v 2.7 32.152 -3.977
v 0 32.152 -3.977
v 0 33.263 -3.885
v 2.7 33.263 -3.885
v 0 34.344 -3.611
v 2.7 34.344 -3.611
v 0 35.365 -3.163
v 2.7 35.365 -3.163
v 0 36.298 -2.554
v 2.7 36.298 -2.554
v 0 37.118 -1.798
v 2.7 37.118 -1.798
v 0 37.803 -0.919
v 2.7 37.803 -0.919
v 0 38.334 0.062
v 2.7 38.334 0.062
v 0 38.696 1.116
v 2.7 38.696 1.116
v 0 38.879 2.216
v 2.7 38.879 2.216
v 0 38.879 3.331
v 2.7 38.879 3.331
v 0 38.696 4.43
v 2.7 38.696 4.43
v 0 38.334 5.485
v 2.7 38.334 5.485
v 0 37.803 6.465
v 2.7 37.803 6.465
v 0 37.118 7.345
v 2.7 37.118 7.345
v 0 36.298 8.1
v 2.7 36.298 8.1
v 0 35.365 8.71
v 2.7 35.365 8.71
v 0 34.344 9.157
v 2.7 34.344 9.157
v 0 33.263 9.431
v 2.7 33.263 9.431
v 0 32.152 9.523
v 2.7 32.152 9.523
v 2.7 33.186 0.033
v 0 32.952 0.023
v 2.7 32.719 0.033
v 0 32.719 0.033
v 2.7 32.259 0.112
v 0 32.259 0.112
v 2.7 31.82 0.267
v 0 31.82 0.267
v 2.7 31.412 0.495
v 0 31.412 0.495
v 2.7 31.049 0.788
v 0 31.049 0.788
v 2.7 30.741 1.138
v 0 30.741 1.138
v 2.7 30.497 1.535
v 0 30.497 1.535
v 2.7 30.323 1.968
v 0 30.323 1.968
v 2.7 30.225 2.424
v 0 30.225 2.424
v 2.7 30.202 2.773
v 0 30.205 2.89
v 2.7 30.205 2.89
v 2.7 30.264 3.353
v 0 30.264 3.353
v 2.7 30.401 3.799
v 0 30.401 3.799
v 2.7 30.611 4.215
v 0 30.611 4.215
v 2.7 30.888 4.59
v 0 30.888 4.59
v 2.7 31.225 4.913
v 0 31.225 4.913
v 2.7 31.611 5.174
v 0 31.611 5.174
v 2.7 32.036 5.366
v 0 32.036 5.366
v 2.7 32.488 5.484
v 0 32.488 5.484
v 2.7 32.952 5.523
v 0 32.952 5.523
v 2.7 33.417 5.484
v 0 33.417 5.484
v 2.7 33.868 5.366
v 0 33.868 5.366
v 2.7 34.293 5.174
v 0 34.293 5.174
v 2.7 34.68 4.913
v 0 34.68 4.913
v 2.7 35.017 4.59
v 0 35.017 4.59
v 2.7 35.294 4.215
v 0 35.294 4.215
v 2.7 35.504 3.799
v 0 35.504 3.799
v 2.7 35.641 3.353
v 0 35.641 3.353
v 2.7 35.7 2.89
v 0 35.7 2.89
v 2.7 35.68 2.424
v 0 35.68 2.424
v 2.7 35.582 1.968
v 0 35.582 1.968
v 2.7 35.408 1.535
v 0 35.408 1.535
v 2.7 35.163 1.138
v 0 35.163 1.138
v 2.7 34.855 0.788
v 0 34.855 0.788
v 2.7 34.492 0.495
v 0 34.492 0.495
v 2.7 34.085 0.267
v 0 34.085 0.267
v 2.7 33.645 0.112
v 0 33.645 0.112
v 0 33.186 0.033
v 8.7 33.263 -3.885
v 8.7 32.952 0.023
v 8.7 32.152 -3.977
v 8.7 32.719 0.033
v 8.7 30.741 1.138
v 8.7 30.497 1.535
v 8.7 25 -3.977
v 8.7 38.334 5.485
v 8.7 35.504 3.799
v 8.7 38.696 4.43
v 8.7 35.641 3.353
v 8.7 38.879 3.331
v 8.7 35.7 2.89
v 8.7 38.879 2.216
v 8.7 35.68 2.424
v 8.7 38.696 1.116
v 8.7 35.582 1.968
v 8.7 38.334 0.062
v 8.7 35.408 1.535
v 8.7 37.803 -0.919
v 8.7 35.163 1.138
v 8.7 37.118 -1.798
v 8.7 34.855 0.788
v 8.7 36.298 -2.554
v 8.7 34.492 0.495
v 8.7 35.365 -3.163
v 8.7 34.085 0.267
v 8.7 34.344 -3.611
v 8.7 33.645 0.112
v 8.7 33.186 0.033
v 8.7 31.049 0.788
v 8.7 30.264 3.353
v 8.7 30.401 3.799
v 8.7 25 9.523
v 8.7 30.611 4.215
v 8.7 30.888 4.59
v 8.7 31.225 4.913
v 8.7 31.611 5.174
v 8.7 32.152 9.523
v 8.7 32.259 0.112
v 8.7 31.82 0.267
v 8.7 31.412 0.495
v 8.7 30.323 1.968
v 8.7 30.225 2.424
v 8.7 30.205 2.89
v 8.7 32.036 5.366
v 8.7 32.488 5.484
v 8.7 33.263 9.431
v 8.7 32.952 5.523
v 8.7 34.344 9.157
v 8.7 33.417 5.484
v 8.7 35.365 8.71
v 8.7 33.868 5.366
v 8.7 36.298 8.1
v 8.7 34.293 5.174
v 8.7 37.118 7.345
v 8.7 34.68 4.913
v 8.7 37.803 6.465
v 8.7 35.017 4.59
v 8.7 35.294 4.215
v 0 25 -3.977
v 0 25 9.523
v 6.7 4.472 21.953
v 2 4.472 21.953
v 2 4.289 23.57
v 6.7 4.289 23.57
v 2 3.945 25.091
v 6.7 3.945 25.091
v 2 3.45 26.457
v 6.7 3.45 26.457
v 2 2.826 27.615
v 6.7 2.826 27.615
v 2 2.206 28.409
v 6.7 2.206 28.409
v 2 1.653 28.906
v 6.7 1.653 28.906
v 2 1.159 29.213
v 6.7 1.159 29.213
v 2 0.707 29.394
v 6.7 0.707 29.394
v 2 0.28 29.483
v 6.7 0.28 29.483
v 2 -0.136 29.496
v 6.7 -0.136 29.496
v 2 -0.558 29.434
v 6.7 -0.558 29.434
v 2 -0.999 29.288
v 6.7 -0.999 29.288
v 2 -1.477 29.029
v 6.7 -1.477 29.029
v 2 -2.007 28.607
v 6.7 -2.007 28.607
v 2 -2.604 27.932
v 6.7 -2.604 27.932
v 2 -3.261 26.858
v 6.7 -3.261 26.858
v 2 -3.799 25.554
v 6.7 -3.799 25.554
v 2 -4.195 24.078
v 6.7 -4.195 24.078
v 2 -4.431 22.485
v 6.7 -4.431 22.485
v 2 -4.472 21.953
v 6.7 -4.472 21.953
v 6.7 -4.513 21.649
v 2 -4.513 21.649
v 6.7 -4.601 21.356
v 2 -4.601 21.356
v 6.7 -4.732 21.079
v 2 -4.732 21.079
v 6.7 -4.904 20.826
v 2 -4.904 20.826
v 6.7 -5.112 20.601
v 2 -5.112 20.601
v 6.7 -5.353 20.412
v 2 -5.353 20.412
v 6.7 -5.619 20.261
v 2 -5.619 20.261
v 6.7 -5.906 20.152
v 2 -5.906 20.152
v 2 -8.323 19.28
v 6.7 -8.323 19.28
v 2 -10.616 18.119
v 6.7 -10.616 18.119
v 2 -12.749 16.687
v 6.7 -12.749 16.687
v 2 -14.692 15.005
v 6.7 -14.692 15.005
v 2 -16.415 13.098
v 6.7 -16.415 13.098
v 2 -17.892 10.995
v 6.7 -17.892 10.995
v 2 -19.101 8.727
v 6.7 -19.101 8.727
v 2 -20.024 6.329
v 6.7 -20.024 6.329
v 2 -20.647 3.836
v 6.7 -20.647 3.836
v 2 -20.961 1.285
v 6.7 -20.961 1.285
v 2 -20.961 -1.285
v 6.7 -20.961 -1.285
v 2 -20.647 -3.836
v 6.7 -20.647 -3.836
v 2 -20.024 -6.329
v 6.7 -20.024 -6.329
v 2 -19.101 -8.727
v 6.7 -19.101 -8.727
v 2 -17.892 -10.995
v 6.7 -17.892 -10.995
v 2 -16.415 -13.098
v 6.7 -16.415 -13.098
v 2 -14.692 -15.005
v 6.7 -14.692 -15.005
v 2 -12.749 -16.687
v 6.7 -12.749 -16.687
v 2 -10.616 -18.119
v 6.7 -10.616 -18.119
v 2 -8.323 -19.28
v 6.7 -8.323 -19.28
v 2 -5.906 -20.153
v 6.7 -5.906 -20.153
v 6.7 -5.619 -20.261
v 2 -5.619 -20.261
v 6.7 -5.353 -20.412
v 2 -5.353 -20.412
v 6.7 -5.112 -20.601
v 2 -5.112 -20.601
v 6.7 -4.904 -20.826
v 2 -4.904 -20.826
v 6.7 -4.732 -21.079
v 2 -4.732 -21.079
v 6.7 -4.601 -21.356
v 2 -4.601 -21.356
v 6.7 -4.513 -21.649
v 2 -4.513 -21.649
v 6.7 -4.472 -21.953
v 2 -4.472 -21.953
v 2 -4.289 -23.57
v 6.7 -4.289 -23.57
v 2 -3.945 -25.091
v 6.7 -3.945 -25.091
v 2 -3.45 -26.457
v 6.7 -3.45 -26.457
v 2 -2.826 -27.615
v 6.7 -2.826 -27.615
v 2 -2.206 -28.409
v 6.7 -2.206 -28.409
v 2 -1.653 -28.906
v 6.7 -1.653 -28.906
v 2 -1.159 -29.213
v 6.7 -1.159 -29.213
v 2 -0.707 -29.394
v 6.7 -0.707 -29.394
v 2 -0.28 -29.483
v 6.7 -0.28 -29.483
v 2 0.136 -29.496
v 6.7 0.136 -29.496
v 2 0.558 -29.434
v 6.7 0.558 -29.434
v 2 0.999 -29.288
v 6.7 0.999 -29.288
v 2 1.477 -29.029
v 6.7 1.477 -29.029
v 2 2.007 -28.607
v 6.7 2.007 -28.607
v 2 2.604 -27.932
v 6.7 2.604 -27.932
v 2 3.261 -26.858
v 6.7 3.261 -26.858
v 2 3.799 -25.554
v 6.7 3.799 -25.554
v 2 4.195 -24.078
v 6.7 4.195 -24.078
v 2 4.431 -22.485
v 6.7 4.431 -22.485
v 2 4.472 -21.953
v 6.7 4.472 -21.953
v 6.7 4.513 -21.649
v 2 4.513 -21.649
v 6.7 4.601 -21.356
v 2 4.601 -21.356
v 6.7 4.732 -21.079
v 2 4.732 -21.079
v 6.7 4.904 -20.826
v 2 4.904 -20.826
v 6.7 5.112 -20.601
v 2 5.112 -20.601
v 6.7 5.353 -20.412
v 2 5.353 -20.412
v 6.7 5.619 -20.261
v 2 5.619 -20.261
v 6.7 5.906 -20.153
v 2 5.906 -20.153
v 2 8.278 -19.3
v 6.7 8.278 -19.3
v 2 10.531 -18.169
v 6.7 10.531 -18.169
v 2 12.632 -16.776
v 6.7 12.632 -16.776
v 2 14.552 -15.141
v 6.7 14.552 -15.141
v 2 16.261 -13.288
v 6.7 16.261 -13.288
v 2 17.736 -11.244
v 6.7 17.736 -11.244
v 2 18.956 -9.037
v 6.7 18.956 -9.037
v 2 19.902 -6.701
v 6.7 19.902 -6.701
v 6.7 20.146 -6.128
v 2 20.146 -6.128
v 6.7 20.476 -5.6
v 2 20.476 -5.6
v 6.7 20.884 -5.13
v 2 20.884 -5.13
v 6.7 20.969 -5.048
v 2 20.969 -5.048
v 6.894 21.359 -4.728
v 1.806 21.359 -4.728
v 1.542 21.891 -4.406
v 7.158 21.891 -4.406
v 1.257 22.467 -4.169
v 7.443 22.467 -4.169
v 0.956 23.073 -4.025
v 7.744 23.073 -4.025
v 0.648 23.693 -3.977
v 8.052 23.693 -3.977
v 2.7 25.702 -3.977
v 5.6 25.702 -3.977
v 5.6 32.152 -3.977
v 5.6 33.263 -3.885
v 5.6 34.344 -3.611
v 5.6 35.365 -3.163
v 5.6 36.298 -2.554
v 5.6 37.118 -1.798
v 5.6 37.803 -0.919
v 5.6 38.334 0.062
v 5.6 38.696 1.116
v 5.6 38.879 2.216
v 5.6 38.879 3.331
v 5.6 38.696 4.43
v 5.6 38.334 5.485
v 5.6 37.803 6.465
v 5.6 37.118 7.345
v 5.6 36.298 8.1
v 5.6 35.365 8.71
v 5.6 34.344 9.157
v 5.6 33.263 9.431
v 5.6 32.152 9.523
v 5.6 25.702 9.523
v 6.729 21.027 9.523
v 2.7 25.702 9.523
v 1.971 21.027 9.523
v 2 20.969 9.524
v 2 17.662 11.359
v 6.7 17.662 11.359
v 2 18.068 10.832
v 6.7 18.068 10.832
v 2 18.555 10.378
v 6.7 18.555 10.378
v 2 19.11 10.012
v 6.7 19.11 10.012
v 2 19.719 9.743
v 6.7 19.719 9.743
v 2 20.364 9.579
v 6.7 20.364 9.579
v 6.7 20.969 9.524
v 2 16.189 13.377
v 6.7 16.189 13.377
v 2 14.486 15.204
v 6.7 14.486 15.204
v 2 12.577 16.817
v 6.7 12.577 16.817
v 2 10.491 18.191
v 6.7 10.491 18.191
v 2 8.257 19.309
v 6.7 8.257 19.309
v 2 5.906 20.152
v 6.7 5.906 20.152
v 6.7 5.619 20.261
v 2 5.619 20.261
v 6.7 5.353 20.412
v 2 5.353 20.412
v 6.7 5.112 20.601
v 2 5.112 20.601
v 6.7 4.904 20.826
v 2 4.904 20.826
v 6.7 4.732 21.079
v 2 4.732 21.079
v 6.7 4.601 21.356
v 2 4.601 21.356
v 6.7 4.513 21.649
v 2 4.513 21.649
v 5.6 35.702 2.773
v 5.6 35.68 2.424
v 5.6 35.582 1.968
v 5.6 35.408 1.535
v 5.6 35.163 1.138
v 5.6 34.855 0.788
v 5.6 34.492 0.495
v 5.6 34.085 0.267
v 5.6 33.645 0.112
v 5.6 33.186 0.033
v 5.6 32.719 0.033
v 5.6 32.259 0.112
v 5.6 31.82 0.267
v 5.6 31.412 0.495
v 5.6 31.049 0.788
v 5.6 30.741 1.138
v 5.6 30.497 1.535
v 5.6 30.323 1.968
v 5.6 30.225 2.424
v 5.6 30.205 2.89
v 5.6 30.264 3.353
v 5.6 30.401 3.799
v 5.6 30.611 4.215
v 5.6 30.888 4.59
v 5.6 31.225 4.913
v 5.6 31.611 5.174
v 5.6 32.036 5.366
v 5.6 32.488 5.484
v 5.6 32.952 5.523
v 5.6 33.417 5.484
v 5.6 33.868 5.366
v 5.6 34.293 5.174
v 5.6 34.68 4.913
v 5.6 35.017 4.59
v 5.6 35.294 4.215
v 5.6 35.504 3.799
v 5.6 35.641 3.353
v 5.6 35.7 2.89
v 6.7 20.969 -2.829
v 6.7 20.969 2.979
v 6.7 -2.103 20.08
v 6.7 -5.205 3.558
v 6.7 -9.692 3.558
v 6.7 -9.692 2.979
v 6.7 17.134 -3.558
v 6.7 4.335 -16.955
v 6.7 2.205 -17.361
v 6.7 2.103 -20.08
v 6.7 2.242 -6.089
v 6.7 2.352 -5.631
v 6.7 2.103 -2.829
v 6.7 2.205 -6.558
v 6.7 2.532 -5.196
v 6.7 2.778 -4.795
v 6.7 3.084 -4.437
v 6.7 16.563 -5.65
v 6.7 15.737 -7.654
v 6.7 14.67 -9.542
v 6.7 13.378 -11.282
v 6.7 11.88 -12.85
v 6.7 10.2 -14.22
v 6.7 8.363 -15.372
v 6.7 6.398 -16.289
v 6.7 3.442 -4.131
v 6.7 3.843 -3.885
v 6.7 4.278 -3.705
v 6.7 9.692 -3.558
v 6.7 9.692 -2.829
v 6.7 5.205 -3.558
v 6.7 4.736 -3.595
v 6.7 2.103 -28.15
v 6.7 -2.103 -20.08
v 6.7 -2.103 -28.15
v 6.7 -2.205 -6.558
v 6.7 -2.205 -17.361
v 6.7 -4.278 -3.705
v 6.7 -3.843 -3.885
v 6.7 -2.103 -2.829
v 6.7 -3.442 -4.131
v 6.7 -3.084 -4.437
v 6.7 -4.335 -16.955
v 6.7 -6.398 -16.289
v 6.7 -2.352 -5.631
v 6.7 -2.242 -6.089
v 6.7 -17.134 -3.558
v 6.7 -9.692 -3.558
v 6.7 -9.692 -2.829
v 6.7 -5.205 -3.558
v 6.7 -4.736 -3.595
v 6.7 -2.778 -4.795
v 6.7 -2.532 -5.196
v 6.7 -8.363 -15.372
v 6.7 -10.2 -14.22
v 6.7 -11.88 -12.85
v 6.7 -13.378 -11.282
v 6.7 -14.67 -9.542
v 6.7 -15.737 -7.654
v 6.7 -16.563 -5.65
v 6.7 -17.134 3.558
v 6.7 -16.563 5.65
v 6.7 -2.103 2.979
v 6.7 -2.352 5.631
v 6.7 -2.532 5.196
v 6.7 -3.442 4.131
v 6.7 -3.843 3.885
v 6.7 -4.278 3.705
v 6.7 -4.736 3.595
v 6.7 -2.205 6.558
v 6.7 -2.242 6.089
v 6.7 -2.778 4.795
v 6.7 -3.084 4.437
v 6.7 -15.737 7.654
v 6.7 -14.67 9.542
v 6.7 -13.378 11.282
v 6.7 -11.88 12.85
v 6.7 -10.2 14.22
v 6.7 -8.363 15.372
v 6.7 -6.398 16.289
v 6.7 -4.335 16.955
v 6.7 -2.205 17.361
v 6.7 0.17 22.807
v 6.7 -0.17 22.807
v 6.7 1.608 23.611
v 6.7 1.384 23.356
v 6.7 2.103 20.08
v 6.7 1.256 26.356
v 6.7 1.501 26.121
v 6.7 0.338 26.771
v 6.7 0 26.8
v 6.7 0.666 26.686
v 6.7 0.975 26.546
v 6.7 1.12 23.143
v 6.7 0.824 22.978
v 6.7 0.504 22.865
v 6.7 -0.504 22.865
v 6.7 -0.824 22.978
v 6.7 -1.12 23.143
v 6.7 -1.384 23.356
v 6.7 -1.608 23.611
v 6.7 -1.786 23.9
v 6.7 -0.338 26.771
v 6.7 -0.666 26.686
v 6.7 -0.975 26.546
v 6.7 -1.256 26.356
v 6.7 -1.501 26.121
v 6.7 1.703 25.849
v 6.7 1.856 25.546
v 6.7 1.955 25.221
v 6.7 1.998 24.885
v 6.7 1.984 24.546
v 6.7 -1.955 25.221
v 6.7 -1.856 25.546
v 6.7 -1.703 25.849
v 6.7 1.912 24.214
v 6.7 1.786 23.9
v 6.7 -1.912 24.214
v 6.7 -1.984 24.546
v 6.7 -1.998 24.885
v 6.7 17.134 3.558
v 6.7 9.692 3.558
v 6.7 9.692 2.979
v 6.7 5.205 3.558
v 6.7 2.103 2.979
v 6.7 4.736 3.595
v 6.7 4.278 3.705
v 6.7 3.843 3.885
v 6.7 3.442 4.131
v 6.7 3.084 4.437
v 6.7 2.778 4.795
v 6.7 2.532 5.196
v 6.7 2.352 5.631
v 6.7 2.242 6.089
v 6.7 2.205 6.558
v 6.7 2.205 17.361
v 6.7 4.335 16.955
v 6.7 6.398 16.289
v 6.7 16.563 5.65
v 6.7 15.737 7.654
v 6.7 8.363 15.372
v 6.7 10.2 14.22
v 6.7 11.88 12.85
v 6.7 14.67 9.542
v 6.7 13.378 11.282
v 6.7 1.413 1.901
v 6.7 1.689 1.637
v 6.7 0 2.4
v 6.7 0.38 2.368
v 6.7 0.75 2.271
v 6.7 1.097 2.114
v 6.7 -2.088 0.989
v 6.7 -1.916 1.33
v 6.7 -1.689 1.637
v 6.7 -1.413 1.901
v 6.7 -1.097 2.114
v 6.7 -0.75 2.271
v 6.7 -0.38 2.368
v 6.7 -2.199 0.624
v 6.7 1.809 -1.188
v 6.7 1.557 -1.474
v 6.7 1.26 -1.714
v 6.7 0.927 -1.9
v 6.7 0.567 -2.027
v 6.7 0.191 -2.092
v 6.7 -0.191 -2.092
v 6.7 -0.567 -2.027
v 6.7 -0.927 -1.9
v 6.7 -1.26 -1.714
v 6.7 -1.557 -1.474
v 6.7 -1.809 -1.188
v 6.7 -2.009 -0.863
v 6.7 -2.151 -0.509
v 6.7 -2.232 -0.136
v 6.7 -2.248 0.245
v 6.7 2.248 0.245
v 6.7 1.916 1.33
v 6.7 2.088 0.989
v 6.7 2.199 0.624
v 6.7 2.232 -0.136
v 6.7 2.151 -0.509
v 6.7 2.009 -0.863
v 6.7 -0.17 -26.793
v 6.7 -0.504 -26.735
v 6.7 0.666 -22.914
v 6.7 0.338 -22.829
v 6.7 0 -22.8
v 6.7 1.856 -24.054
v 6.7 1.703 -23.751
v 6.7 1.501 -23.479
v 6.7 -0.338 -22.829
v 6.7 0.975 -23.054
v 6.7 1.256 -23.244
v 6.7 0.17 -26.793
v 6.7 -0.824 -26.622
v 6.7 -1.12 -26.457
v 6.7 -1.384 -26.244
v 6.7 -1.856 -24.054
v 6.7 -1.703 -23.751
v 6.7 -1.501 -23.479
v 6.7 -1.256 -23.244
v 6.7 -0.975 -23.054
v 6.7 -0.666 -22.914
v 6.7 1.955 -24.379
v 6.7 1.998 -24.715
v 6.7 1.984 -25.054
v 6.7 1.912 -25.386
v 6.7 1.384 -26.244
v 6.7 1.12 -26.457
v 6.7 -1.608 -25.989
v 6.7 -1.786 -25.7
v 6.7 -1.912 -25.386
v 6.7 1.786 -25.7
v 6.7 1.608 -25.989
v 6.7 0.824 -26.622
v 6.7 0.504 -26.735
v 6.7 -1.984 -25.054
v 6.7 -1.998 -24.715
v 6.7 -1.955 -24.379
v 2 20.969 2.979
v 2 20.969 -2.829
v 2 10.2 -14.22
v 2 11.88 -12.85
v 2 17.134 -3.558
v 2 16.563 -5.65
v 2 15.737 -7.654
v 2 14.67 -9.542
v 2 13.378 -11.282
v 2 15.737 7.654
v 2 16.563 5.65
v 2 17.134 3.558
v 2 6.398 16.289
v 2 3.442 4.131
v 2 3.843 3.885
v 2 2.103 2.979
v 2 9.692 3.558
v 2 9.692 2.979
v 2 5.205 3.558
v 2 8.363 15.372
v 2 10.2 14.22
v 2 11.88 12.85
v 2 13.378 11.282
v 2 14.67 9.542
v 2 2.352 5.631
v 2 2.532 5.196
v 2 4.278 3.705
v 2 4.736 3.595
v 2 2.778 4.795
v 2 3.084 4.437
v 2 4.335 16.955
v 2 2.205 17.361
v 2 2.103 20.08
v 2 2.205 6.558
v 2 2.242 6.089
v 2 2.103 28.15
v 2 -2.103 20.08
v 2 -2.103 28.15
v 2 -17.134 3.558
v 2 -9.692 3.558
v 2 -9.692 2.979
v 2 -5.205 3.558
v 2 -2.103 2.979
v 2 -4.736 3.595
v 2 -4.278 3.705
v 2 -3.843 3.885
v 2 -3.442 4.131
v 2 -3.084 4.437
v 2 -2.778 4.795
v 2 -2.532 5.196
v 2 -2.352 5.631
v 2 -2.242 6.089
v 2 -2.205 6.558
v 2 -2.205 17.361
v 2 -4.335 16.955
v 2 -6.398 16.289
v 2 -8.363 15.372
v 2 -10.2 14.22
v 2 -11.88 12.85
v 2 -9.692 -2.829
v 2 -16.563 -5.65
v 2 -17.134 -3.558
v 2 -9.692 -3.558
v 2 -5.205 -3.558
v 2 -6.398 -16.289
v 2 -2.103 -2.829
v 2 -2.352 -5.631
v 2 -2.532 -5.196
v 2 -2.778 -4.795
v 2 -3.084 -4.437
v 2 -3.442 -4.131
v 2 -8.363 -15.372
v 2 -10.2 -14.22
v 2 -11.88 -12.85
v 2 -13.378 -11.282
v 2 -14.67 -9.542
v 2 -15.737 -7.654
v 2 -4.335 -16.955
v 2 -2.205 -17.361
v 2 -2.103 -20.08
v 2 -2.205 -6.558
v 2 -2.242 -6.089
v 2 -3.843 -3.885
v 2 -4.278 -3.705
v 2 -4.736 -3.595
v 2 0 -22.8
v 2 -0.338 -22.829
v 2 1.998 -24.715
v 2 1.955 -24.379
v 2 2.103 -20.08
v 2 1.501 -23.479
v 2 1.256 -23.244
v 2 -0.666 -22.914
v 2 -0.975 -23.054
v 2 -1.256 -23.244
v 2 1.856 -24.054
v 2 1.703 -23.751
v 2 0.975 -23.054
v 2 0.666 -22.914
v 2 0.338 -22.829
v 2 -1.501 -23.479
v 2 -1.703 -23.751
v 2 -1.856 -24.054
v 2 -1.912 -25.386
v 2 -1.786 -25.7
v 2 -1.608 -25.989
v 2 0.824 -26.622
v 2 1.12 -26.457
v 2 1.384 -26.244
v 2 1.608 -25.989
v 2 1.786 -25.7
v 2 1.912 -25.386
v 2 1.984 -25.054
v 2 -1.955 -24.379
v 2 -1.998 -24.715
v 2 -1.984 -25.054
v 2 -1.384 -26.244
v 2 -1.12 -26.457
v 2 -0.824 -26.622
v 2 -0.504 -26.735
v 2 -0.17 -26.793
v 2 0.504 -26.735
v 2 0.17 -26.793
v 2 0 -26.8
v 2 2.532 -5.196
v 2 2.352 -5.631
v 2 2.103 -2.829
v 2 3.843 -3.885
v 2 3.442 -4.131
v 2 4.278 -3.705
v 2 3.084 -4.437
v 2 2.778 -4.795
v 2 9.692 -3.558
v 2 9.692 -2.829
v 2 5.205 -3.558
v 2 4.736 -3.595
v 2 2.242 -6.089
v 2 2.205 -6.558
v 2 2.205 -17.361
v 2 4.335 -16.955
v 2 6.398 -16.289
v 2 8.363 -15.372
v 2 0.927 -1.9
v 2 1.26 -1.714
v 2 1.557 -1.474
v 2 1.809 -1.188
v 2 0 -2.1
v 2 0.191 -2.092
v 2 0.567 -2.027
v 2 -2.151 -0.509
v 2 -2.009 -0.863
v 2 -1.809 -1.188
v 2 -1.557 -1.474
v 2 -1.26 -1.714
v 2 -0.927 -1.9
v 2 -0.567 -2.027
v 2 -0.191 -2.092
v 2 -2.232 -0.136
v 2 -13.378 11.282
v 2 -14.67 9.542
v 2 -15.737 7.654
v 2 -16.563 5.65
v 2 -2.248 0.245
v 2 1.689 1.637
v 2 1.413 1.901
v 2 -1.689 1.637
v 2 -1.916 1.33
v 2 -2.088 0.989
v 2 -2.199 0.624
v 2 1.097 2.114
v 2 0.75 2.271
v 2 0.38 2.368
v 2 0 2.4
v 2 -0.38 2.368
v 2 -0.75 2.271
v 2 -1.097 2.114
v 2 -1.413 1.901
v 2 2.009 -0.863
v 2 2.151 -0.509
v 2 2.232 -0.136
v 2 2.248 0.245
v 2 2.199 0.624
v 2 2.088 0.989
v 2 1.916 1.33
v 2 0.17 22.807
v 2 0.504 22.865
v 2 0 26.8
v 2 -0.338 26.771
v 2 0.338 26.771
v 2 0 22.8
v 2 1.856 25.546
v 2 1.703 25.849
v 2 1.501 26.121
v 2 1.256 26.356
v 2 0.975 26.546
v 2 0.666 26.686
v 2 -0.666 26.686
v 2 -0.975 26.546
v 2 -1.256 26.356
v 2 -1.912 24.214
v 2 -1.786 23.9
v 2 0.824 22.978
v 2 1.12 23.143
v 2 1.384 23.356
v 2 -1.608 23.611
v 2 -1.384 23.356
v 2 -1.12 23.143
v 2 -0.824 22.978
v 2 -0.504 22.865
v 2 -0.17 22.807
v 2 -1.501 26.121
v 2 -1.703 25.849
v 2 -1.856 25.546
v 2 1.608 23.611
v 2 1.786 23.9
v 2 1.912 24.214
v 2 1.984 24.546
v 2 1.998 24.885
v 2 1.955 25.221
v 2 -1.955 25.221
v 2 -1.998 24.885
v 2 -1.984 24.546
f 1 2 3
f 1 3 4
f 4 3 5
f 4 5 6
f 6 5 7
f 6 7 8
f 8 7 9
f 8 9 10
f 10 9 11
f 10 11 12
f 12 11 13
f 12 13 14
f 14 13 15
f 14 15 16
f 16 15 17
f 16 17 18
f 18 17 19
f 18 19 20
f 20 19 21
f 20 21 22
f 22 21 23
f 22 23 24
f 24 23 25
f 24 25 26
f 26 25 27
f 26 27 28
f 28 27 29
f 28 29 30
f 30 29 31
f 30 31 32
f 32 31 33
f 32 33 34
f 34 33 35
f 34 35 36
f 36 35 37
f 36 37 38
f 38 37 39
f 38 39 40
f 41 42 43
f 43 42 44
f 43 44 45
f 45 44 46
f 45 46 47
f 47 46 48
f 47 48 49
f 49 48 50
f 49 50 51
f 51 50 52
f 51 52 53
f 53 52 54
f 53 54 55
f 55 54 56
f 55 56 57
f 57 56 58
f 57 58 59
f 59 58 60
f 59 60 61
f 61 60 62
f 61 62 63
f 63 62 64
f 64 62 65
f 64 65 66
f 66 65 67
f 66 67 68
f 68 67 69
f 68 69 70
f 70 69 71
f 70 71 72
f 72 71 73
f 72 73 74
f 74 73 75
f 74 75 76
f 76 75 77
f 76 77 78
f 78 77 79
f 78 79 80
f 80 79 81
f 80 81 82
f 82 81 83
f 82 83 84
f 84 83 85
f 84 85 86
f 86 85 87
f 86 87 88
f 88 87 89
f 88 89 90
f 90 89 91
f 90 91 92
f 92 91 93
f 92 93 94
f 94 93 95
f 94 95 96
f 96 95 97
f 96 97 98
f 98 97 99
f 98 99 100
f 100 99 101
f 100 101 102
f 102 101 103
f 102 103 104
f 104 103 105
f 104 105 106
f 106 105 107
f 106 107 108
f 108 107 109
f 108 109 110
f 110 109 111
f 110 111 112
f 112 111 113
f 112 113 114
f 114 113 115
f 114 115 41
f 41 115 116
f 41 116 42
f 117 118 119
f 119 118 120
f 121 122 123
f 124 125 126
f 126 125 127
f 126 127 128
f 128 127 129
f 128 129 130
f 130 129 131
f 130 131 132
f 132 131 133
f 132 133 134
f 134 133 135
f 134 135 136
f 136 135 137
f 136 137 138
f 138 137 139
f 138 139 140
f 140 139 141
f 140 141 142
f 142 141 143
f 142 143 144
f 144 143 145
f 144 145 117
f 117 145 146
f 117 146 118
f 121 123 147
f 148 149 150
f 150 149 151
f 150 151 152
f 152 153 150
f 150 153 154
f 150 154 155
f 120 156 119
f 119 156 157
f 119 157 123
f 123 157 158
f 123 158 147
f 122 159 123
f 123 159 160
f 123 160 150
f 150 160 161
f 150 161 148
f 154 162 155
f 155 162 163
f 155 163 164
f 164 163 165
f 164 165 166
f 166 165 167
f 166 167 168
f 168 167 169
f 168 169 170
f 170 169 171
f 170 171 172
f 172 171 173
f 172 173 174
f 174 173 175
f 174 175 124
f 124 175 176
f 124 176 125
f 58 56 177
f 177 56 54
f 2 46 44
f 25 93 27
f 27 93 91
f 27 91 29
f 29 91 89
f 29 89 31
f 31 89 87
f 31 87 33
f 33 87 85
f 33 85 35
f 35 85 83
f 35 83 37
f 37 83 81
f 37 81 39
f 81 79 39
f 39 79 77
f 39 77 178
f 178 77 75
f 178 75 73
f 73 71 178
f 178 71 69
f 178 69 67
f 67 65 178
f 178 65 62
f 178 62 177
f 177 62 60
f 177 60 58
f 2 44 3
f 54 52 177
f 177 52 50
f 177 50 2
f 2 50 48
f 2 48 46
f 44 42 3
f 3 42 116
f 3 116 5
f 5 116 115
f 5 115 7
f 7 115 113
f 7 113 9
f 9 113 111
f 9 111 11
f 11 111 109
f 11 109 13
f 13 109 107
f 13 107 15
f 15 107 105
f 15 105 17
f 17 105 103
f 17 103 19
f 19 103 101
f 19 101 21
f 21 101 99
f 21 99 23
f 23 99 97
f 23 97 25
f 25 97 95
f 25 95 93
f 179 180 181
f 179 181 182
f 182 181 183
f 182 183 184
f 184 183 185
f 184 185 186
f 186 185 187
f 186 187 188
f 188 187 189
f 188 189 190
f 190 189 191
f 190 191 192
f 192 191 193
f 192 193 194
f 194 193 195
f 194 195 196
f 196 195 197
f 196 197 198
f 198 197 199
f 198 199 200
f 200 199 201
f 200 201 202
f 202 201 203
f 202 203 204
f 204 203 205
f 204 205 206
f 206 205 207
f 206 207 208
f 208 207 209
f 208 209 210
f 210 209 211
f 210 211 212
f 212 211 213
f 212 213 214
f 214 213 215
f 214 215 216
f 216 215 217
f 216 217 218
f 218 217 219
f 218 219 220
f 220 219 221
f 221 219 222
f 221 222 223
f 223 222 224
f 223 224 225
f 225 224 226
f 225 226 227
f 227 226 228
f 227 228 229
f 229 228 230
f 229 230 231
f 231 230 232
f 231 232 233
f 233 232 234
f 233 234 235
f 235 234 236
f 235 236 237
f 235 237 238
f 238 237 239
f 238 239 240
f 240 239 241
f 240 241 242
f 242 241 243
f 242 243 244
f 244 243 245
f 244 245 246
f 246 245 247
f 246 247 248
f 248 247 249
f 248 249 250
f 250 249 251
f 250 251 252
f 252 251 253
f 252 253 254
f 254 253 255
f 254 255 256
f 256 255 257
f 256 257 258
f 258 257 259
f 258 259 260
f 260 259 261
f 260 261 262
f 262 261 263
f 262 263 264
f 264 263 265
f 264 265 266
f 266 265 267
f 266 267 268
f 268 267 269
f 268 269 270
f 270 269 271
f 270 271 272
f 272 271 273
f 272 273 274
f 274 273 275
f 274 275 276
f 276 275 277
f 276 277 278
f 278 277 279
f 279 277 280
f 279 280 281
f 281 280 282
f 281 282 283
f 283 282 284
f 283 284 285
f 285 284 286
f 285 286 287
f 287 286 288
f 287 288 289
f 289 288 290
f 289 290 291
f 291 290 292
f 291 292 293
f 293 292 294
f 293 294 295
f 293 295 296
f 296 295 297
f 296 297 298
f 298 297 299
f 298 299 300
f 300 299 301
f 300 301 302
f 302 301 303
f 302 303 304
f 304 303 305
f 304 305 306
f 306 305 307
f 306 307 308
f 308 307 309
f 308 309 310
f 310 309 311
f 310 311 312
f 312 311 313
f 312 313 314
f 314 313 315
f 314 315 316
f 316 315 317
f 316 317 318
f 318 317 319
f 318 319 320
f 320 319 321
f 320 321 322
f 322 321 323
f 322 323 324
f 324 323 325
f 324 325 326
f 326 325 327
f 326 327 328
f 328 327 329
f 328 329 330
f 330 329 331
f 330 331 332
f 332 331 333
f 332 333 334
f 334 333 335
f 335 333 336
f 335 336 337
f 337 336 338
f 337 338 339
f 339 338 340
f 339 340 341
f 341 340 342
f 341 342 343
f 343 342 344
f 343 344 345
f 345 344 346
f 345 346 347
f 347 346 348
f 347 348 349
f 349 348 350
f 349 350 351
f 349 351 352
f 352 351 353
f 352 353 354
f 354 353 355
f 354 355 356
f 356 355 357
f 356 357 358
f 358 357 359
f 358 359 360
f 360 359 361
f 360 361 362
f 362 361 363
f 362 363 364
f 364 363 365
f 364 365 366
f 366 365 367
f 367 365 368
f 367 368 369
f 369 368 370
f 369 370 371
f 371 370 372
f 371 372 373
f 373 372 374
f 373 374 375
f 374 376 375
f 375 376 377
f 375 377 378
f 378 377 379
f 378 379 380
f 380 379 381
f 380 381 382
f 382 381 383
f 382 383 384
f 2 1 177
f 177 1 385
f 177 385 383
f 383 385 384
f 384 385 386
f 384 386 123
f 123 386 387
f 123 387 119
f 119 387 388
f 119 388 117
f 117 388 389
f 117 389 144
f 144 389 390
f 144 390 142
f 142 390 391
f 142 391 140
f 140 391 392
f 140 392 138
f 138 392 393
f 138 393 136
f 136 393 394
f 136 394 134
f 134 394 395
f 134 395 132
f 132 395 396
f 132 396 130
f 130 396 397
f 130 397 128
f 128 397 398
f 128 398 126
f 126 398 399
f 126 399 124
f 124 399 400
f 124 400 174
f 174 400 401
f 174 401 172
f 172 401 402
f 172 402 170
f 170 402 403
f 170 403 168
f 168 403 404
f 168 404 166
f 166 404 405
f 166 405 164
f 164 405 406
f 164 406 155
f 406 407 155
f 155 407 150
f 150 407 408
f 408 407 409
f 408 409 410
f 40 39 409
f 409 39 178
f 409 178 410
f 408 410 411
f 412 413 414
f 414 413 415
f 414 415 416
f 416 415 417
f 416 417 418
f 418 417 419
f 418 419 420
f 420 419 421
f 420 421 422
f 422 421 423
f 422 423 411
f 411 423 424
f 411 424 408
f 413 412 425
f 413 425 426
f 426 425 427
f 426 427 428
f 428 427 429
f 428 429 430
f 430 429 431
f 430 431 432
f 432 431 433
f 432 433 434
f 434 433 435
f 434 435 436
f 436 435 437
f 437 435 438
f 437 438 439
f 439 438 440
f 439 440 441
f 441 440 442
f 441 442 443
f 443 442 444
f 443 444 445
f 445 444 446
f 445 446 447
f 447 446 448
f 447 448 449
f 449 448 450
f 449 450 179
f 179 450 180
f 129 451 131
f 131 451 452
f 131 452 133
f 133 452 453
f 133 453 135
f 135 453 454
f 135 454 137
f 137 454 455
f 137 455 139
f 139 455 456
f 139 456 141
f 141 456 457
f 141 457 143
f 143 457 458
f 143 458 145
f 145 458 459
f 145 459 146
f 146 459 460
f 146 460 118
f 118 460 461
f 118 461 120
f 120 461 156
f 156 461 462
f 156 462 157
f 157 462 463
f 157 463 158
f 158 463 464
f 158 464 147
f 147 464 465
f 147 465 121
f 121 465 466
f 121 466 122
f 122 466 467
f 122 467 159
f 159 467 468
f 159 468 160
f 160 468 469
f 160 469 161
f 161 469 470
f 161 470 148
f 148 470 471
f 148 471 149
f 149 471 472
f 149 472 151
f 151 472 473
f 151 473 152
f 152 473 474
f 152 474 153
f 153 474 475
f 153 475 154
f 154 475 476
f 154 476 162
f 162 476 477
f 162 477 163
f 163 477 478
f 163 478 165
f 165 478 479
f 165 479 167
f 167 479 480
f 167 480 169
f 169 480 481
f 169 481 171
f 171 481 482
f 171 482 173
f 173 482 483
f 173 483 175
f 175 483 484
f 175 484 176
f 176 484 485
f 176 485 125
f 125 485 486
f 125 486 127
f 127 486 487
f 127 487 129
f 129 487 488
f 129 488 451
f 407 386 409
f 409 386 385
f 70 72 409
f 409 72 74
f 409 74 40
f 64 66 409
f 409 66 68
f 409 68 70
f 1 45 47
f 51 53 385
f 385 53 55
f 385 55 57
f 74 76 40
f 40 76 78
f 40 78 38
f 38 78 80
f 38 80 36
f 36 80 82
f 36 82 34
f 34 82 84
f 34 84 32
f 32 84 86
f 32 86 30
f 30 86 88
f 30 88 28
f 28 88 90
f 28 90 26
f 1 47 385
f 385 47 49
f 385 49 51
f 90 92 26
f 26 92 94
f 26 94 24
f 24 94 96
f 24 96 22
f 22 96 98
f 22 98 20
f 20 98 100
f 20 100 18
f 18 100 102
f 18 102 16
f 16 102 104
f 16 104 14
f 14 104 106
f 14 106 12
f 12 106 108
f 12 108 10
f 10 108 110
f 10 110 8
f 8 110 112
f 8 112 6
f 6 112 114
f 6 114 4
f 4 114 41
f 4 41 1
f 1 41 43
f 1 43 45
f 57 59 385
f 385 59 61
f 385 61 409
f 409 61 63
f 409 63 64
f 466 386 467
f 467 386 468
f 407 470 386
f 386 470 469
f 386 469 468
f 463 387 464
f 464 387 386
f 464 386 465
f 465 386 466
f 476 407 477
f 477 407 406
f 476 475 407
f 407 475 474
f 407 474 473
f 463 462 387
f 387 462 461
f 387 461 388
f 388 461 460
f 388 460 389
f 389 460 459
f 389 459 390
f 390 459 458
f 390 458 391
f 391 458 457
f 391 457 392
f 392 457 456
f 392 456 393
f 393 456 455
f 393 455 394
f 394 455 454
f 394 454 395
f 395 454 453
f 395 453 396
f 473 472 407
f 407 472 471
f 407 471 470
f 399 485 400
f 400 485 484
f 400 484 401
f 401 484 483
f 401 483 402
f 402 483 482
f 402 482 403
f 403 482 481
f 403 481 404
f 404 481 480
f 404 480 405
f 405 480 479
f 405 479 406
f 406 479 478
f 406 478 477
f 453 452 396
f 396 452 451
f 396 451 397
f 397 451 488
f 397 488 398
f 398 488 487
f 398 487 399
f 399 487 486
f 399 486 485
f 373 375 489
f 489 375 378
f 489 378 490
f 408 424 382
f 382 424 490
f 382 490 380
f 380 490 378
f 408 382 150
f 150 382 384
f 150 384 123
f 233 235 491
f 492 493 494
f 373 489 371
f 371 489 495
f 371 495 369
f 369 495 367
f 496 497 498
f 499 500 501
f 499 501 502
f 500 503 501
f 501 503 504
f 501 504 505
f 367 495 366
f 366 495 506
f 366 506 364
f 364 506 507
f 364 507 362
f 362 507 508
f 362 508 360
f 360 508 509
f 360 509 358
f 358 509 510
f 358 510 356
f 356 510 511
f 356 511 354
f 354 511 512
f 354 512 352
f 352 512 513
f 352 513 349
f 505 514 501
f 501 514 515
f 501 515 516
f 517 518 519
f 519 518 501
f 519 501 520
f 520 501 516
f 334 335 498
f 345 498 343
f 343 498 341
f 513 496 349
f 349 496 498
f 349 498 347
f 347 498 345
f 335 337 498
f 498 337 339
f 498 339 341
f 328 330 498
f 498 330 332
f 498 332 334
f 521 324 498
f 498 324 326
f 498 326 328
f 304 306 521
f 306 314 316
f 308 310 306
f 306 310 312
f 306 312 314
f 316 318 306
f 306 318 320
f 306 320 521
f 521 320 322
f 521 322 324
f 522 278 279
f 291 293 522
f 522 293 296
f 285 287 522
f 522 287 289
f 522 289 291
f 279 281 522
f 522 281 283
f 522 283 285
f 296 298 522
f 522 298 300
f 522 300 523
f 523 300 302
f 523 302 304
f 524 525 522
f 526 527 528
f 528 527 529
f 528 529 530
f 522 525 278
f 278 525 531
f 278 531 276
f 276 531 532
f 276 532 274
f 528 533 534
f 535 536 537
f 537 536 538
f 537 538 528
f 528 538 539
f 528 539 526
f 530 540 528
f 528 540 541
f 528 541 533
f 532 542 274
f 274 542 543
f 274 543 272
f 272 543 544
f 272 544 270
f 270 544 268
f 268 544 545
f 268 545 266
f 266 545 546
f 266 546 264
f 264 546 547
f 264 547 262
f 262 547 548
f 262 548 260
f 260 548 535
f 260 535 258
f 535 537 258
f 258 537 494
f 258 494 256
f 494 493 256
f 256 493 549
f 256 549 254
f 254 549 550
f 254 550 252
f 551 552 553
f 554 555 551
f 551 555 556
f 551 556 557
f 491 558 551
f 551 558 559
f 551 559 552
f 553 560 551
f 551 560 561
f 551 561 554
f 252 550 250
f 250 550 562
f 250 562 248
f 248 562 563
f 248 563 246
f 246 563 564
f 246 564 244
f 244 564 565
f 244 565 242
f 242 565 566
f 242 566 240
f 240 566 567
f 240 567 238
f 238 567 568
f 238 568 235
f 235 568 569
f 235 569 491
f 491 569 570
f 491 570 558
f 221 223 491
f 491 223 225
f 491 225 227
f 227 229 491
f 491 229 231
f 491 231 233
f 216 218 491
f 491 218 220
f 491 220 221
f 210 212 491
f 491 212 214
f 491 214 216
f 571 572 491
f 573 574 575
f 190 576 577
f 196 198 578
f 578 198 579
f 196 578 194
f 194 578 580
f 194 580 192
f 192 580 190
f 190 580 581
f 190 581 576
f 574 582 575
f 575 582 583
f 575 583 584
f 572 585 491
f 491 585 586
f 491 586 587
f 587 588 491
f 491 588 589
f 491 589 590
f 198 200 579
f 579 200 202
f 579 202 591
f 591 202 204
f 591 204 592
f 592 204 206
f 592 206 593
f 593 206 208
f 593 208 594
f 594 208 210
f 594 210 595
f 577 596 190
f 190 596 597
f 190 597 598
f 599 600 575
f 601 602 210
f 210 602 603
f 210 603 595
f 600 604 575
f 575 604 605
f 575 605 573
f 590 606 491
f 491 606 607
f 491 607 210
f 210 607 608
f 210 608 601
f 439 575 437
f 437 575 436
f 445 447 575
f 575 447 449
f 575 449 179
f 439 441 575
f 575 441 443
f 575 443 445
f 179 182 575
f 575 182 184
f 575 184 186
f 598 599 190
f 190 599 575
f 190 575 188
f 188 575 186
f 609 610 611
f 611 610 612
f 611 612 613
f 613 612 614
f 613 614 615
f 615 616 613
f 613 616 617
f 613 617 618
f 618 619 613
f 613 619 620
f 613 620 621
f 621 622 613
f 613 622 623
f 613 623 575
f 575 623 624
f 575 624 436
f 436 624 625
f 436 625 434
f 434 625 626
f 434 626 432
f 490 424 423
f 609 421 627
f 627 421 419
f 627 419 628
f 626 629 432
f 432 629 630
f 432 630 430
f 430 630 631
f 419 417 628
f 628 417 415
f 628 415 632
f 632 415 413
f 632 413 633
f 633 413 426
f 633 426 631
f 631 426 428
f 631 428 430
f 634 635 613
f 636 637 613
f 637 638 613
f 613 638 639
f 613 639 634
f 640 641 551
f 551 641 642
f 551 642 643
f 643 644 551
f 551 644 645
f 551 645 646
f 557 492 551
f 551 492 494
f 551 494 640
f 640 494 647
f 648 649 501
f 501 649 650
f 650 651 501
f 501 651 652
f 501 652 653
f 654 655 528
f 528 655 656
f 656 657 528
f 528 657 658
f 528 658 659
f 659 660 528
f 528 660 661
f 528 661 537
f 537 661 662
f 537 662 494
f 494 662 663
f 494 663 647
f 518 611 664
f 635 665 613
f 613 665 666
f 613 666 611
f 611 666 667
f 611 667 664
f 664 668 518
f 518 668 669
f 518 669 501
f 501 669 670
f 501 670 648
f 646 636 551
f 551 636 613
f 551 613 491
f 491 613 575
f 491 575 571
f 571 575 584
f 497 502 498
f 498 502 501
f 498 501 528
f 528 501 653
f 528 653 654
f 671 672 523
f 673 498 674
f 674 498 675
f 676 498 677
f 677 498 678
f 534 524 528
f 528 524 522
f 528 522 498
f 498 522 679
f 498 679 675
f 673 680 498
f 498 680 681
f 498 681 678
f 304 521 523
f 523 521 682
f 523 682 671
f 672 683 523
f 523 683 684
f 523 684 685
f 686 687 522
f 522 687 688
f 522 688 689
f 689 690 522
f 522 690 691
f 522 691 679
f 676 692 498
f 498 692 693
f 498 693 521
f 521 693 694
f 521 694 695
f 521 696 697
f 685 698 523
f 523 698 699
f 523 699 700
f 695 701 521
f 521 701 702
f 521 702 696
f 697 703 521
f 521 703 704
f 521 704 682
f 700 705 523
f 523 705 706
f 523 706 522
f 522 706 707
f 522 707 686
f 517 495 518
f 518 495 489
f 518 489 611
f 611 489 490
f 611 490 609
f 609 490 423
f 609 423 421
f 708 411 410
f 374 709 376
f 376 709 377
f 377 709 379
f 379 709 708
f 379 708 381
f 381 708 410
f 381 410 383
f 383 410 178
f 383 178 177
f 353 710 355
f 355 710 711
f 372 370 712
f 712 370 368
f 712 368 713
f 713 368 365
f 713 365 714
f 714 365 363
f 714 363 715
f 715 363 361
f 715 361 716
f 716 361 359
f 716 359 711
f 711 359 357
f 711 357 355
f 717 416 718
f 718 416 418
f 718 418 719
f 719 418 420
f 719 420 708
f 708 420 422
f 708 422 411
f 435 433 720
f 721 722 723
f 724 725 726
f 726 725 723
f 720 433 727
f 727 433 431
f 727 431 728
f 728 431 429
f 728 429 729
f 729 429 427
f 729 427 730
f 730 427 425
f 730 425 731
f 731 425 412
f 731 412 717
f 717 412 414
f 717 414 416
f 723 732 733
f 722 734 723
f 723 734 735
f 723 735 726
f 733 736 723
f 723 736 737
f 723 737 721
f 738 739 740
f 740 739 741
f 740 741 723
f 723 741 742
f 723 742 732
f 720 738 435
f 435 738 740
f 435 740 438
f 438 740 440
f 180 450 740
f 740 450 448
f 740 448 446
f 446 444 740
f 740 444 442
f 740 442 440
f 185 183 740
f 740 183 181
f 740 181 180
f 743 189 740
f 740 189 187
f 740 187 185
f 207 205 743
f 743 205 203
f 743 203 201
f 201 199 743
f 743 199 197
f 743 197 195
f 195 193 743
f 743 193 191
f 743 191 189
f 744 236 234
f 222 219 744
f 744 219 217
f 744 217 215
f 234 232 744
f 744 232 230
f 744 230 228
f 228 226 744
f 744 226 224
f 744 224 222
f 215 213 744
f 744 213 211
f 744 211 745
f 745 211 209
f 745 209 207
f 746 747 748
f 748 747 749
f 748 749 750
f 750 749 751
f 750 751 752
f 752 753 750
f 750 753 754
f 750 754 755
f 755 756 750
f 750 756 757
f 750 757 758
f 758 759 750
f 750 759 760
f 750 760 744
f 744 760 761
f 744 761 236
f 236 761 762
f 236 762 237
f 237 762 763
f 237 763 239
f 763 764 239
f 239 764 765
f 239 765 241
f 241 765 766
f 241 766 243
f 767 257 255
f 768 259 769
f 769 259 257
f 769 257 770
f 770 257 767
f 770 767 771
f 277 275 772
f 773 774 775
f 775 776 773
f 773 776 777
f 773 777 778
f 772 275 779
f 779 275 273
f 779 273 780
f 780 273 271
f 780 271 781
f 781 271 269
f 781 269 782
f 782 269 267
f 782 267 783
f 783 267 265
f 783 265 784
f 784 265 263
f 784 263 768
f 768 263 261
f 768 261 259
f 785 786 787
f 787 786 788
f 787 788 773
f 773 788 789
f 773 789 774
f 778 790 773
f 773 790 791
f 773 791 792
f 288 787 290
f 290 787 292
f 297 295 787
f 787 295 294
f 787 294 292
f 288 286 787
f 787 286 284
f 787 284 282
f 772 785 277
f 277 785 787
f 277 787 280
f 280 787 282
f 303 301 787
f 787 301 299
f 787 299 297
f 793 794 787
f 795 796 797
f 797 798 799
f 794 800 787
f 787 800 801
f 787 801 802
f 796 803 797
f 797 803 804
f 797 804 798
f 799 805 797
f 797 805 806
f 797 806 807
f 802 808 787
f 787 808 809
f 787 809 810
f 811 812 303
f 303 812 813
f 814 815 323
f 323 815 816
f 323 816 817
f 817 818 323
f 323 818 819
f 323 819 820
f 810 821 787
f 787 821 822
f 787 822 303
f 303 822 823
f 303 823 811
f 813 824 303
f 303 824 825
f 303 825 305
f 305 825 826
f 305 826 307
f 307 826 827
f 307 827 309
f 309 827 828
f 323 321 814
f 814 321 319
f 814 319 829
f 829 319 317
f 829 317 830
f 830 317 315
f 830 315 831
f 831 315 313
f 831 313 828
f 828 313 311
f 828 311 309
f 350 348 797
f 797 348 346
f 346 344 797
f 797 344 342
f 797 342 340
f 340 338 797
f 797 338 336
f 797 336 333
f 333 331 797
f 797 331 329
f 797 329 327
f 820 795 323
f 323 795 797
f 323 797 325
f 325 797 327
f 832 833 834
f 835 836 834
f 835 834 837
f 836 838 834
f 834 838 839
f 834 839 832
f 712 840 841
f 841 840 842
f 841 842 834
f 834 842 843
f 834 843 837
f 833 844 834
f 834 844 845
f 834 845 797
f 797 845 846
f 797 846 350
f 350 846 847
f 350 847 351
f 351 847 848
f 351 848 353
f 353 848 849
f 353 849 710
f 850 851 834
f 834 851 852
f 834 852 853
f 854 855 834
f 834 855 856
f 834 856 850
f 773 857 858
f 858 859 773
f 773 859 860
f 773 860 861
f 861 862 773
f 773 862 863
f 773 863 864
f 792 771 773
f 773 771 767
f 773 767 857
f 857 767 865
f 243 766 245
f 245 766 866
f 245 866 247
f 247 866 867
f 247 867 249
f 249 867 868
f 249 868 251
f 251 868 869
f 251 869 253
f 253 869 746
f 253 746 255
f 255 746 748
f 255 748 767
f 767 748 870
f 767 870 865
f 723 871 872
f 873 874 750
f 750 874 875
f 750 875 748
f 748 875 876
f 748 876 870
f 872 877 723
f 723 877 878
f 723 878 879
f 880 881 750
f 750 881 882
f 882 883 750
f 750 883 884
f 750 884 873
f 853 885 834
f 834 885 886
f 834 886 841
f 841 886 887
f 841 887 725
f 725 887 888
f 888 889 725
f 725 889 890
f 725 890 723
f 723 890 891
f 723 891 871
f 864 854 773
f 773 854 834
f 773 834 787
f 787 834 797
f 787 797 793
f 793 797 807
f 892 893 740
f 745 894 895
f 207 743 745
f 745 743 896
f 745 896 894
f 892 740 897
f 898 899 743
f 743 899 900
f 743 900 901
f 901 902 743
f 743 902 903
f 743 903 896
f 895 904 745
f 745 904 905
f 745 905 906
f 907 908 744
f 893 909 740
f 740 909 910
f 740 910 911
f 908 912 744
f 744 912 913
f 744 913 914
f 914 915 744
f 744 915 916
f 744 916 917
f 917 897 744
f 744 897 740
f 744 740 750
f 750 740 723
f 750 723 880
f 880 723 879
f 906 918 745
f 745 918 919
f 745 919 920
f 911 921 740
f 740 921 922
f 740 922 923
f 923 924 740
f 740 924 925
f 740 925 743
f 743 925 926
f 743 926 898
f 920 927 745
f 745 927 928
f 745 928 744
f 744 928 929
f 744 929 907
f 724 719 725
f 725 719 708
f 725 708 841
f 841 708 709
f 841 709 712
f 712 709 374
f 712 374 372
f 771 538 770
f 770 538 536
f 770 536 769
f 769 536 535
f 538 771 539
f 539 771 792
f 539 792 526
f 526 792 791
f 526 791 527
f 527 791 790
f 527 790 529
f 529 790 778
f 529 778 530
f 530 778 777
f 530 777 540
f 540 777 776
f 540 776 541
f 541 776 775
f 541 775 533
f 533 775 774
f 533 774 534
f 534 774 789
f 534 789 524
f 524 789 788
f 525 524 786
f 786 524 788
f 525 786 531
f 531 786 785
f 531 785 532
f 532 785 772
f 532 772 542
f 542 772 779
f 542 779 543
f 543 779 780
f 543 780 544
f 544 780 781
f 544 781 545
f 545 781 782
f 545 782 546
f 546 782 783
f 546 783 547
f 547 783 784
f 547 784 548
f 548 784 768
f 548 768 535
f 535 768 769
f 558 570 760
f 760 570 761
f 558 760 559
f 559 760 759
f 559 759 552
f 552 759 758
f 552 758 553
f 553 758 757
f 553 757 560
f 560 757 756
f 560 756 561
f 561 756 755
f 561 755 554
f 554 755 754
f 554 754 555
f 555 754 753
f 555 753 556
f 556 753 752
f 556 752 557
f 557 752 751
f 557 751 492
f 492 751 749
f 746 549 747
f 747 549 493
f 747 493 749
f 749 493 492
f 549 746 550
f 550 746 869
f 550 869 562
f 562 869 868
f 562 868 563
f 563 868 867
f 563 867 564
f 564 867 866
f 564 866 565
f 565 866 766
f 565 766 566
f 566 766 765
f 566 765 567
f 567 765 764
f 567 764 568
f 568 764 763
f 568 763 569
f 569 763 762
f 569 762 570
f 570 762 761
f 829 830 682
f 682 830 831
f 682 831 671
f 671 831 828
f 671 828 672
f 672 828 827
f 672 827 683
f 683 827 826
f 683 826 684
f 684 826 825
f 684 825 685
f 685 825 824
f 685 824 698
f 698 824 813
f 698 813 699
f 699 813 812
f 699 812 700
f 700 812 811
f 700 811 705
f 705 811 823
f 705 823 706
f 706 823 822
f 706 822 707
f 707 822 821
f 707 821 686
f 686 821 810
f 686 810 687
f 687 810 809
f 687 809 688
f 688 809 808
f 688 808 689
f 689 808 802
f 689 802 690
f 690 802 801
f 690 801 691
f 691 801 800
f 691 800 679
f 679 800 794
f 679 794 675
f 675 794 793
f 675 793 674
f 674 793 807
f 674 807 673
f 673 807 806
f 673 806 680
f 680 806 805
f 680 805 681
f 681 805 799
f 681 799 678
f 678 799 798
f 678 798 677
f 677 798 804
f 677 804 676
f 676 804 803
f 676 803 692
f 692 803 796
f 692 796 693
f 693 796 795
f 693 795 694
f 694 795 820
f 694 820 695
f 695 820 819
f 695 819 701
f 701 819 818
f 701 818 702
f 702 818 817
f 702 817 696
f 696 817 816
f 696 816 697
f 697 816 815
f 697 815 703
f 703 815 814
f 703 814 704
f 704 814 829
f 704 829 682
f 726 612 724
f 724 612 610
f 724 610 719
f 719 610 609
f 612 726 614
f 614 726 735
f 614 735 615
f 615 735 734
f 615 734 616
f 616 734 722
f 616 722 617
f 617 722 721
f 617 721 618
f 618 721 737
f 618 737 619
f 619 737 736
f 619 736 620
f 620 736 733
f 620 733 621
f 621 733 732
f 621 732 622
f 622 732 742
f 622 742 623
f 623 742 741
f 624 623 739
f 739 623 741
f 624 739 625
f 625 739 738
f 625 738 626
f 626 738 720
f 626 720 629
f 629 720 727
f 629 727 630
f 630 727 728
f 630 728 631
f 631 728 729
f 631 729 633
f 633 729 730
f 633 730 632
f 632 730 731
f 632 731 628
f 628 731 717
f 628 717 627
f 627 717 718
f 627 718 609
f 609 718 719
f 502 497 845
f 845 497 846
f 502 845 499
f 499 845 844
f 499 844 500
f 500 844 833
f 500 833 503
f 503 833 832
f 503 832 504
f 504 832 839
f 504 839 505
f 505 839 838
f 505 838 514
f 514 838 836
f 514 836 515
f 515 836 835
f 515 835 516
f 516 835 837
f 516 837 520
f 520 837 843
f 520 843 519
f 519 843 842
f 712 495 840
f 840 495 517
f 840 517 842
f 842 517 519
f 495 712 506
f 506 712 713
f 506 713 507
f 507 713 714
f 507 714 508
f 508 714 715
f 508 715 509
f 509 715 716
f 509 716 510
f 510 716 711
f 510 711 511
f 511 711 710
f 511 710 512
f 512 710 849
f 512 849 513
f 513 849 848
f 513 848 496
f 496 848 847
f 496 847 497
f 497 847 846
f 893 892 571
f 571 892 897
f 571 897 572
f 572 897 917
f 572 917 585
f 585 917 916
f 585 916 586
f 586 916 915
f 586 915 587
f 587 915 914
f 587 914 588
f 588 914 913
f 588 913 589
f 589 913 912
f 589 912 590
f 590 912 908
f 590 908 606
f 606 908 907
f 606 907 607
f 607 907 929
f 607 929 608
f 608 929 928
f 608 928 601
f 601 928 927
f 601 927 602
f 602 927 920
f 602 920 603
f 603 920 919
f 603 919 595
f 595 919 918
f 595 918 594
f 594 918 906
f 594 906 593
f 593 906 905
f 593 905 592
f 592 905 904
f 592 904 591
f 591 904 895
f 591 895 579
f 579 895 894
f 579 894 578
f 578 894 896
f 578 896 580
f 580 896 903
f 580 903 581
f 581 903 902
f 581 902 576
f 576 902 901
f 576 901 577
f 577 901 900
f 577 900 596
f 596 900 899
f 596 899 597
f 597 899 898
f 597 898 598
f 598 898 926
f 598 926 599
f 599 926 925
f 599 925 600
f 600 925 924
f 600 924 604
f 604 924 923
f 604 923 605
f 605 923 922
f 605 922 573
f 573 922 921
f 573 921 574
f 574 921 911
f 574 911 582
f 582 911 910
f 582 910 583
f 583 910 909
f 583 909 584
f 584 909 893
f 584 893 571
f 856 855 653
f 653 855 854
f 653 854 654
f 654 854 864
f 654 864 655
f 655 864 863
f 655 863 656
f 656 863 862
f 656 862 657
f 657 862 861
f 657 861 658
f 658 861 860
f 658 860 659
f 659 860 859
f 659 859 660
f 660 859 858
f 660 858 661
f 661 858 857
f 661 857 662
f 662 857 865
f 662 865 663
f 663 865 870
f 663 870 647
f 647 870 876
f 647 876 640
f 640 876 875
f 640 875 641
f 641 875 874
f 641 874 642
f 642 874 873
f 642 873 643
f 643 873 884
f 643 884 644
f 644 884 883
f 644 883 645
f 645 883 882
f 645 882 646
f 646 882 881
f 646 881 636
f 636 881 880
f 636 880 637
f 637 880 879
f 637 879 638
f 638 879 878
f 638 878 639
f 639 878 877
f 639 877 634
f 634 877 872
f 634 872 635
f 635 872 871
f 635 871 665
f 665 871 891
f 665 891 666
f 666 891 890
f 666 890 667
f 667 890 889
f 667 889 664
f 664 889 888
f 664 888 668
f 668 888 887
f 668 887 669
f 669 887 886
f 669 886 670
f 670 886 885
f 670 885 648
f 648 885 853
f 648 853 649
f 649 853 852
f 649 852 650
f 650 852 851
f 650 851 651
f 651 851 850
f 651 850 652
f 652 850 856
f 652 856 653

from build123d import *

# Parameters (mm, degrees)
SKETCH_1_R           = 2
SKETCH_1_R_2         = 2.75
SKETCH_1_R_3         = 2.25
EXTRUDE_2_DEPTH      = 8.7
SKETCH_8_W           = 2.9
SKETCH_8_H           = 13.2
CUT_EXTRUDE_11_DEPTH = 30


with BuildPart() as part:
    # 草图1 → 凸台-拉伸2 (new body)
    with BuildSketch(Plane(origin=(0, 0, 0), x_dir=(0, 0, -1), z_dir=(1, 0, 0))):
        with BuildLine():
            Line((-9.523168661, 32.152331174), (-9.523168661, 21.026742719))
            ThreePointArc((-9.523168661, 21.026742719), (-10.012126939, 19.110343484), (-11.359461675, 17.662463884))
            ThreePointArc((-11.359461675, 17.662463884), (-16.816854056, 12.577496557), (-20.152500023, 5.905653461))
            ThreePointArc((-20.152500023, 5.905653461), (-20.825612762, 4.903790761), (-21.9525847, 4.47165203))
            add(Edge.make_bspline(
                [(-21.9525847, 4.47165203), (-29.5, 4.021021071), (-29.5, 0), (-29.5, -4.021021071), (-21.9525847, -4.47165203)],
                knots=[4.824693691, 4.824693691, 4.824693691, 6.283185307, 6.283185307, 7.741676924, 7.741676924, 7.741676924], degree=2, weights=[1, 0.745677138, 1, 0.745677138, 1]))
            ThreePointArc((-21.9525847, -4.47165203), (-20.825612762, -4.903790761), (-20.152500023, -5.905653461))
            ThreePointArc((-20.152500023, -5.905653461), (2.6e-08, -21), (20.152500038, -5.905653412))
            ThreePointArc((20.152500038, -5.905653412), (20.825612688, -4.903790778), (21.95258449, -4.47165199))
            add(Edge.make_bspline(
                [(21.95258449, -4.47165199), (29.499998011, -4.021020278), (29.499998011, 0), (29.499998011, 4.021020278), (21.95258449, 4.47165199)],
                knots=[1.683101248, 1.683101248, 1.683101248, 3.141592654, 3.141592654, 4.600084059, 4.600084059, 4.600084059], degree=2, weights=[1, 0.745677208, 1, 0.745677208, 1]))
            ThreePointArc((21.95258449, 4.47165199), (20.825612688, 4.903790778), (20.152500038, 5.905653412))
            ThreePointArc((20.152500038, 5.905653412), (15.140943314, 14.551695282), (6.700538325, 19.902331174))
            ThreePointArc((6.700538325, 19.902331174), (4.728356924, 21.359281824), (3.976831339, 23.693251398))
            Line((3.976831339, 23.693251398), (3.976831339, 32.152331174))
            ThreePointArc((3.976831339, 32.152331174), (-2.773168661, 38.902331174), (-9.523168661, 32.152331174))
        make_face()
        with Locations((-24.8, 0)):
            Circle(SKETCH_1_R, mode=Mode.SUBTRACT)
        with Locations(Location((24.8, 0, 0), (0, 0, 180))):
            Circle(SKETCH_1_R, mode=Mode.SUBTRACT)
        with Locations((-2.773168661, 32.952331174)):
            Circle(SKETCH_1_R_2, mode=Mode.SUBTRACT)
        with Locations((-0.15, 0)):
            Circle(SKETCH_1_R_3, mode=Mode.SUBTRACT)
        with BuildLine():
            Line((-3.558339237, 17.134416298), (-3.558339237, 5.205042955))
            ThreePointArc((-3.558339237, 5.205042955), (-4.437018893, 3.083722611), (-6.558339237, 2.205042955))
            Line((-6.558339237, 2.205042955), (-17.36052377, 2.205042955))
            ThreePointArc((-17.36052377, 2.205042955), (-12.849951536, 11.879762014), (-3.558339237, 17.134416298))
        make_face(mode=Mode.SUBTRACT)
        with BuildLine():
            Line((3.558339237, -17.134416298), (3.558339237, -5.205042955))
            ThreePointArc((3.558339237, -5.205042955), (4.437018893, -3.083722611), (6.558339237, -2.205042955))
            Line((6.558339237, -2.205042955), (17.36052377, -2.205042955))
            ThreePointArc((17.36052377, -2.205042955), (12.849951536, -11.879762014), (3.558339237, -17.134416298))
        make_face(mode=Mode.SUBTRACT)
        with BuildLine():
            Line((17.36052377, 2.205042955), (6.558339237, 2.205042955))
            ThreePointArc((6.558339237, 2.205042955), (4.437018893, 3.083722611), (3.558339237, 5.205042955))
            Line((3.558339237, 5.205042955), (3.558339237, 17.134416298))
            ThreePointArc((3.558339237, 17.134416298), (12.849951536, 11.879762014), (17.36052377, 2.205042955))
        make_face(mode=Mode.SUBTRACT)
        with BuildLine():
            Line((-17.36052377, -2.205042955), (-6.558339237, -2.205042955))
            ThreePointArc((-6.558339237, -2.205042955), (-4.437018893, -3.083722611), (-3.558339237, -5.205042955))
            Line((-3.558339237, -5.205042955), (-3.558339237, -17.134416298))
            ThreePointArc((-3.558339237, -17.134416298), (-12.849951536, -11.879762014), (-17.36052377, -2.205042955))
        make_face(mode=Mode.SUBTRACT)
    extrude(amount=EXTRUDE_2_DEPTH)

    # 草图8 → 切除-拉伸11 (cut, symmetric)
    with BuildSketch(Plane.XY):
        Polygon((0, -21), (2, -21), (2, 20.968871126), (0, 25), align=None)
        Polygon((8.7, -21), (6.7, -21), (6.7, 20.968871126), (8.7, 25), align=None)
        with Locations((4.15, 32.302331174)):
            Rectangle(SKETCH_8_W, SKETCH_8_H)
    extrude(amount=CUT_EXTRUDE_11_DEPTH, both=True, mode=Mode.SUBTRACT)


solid = part.part
